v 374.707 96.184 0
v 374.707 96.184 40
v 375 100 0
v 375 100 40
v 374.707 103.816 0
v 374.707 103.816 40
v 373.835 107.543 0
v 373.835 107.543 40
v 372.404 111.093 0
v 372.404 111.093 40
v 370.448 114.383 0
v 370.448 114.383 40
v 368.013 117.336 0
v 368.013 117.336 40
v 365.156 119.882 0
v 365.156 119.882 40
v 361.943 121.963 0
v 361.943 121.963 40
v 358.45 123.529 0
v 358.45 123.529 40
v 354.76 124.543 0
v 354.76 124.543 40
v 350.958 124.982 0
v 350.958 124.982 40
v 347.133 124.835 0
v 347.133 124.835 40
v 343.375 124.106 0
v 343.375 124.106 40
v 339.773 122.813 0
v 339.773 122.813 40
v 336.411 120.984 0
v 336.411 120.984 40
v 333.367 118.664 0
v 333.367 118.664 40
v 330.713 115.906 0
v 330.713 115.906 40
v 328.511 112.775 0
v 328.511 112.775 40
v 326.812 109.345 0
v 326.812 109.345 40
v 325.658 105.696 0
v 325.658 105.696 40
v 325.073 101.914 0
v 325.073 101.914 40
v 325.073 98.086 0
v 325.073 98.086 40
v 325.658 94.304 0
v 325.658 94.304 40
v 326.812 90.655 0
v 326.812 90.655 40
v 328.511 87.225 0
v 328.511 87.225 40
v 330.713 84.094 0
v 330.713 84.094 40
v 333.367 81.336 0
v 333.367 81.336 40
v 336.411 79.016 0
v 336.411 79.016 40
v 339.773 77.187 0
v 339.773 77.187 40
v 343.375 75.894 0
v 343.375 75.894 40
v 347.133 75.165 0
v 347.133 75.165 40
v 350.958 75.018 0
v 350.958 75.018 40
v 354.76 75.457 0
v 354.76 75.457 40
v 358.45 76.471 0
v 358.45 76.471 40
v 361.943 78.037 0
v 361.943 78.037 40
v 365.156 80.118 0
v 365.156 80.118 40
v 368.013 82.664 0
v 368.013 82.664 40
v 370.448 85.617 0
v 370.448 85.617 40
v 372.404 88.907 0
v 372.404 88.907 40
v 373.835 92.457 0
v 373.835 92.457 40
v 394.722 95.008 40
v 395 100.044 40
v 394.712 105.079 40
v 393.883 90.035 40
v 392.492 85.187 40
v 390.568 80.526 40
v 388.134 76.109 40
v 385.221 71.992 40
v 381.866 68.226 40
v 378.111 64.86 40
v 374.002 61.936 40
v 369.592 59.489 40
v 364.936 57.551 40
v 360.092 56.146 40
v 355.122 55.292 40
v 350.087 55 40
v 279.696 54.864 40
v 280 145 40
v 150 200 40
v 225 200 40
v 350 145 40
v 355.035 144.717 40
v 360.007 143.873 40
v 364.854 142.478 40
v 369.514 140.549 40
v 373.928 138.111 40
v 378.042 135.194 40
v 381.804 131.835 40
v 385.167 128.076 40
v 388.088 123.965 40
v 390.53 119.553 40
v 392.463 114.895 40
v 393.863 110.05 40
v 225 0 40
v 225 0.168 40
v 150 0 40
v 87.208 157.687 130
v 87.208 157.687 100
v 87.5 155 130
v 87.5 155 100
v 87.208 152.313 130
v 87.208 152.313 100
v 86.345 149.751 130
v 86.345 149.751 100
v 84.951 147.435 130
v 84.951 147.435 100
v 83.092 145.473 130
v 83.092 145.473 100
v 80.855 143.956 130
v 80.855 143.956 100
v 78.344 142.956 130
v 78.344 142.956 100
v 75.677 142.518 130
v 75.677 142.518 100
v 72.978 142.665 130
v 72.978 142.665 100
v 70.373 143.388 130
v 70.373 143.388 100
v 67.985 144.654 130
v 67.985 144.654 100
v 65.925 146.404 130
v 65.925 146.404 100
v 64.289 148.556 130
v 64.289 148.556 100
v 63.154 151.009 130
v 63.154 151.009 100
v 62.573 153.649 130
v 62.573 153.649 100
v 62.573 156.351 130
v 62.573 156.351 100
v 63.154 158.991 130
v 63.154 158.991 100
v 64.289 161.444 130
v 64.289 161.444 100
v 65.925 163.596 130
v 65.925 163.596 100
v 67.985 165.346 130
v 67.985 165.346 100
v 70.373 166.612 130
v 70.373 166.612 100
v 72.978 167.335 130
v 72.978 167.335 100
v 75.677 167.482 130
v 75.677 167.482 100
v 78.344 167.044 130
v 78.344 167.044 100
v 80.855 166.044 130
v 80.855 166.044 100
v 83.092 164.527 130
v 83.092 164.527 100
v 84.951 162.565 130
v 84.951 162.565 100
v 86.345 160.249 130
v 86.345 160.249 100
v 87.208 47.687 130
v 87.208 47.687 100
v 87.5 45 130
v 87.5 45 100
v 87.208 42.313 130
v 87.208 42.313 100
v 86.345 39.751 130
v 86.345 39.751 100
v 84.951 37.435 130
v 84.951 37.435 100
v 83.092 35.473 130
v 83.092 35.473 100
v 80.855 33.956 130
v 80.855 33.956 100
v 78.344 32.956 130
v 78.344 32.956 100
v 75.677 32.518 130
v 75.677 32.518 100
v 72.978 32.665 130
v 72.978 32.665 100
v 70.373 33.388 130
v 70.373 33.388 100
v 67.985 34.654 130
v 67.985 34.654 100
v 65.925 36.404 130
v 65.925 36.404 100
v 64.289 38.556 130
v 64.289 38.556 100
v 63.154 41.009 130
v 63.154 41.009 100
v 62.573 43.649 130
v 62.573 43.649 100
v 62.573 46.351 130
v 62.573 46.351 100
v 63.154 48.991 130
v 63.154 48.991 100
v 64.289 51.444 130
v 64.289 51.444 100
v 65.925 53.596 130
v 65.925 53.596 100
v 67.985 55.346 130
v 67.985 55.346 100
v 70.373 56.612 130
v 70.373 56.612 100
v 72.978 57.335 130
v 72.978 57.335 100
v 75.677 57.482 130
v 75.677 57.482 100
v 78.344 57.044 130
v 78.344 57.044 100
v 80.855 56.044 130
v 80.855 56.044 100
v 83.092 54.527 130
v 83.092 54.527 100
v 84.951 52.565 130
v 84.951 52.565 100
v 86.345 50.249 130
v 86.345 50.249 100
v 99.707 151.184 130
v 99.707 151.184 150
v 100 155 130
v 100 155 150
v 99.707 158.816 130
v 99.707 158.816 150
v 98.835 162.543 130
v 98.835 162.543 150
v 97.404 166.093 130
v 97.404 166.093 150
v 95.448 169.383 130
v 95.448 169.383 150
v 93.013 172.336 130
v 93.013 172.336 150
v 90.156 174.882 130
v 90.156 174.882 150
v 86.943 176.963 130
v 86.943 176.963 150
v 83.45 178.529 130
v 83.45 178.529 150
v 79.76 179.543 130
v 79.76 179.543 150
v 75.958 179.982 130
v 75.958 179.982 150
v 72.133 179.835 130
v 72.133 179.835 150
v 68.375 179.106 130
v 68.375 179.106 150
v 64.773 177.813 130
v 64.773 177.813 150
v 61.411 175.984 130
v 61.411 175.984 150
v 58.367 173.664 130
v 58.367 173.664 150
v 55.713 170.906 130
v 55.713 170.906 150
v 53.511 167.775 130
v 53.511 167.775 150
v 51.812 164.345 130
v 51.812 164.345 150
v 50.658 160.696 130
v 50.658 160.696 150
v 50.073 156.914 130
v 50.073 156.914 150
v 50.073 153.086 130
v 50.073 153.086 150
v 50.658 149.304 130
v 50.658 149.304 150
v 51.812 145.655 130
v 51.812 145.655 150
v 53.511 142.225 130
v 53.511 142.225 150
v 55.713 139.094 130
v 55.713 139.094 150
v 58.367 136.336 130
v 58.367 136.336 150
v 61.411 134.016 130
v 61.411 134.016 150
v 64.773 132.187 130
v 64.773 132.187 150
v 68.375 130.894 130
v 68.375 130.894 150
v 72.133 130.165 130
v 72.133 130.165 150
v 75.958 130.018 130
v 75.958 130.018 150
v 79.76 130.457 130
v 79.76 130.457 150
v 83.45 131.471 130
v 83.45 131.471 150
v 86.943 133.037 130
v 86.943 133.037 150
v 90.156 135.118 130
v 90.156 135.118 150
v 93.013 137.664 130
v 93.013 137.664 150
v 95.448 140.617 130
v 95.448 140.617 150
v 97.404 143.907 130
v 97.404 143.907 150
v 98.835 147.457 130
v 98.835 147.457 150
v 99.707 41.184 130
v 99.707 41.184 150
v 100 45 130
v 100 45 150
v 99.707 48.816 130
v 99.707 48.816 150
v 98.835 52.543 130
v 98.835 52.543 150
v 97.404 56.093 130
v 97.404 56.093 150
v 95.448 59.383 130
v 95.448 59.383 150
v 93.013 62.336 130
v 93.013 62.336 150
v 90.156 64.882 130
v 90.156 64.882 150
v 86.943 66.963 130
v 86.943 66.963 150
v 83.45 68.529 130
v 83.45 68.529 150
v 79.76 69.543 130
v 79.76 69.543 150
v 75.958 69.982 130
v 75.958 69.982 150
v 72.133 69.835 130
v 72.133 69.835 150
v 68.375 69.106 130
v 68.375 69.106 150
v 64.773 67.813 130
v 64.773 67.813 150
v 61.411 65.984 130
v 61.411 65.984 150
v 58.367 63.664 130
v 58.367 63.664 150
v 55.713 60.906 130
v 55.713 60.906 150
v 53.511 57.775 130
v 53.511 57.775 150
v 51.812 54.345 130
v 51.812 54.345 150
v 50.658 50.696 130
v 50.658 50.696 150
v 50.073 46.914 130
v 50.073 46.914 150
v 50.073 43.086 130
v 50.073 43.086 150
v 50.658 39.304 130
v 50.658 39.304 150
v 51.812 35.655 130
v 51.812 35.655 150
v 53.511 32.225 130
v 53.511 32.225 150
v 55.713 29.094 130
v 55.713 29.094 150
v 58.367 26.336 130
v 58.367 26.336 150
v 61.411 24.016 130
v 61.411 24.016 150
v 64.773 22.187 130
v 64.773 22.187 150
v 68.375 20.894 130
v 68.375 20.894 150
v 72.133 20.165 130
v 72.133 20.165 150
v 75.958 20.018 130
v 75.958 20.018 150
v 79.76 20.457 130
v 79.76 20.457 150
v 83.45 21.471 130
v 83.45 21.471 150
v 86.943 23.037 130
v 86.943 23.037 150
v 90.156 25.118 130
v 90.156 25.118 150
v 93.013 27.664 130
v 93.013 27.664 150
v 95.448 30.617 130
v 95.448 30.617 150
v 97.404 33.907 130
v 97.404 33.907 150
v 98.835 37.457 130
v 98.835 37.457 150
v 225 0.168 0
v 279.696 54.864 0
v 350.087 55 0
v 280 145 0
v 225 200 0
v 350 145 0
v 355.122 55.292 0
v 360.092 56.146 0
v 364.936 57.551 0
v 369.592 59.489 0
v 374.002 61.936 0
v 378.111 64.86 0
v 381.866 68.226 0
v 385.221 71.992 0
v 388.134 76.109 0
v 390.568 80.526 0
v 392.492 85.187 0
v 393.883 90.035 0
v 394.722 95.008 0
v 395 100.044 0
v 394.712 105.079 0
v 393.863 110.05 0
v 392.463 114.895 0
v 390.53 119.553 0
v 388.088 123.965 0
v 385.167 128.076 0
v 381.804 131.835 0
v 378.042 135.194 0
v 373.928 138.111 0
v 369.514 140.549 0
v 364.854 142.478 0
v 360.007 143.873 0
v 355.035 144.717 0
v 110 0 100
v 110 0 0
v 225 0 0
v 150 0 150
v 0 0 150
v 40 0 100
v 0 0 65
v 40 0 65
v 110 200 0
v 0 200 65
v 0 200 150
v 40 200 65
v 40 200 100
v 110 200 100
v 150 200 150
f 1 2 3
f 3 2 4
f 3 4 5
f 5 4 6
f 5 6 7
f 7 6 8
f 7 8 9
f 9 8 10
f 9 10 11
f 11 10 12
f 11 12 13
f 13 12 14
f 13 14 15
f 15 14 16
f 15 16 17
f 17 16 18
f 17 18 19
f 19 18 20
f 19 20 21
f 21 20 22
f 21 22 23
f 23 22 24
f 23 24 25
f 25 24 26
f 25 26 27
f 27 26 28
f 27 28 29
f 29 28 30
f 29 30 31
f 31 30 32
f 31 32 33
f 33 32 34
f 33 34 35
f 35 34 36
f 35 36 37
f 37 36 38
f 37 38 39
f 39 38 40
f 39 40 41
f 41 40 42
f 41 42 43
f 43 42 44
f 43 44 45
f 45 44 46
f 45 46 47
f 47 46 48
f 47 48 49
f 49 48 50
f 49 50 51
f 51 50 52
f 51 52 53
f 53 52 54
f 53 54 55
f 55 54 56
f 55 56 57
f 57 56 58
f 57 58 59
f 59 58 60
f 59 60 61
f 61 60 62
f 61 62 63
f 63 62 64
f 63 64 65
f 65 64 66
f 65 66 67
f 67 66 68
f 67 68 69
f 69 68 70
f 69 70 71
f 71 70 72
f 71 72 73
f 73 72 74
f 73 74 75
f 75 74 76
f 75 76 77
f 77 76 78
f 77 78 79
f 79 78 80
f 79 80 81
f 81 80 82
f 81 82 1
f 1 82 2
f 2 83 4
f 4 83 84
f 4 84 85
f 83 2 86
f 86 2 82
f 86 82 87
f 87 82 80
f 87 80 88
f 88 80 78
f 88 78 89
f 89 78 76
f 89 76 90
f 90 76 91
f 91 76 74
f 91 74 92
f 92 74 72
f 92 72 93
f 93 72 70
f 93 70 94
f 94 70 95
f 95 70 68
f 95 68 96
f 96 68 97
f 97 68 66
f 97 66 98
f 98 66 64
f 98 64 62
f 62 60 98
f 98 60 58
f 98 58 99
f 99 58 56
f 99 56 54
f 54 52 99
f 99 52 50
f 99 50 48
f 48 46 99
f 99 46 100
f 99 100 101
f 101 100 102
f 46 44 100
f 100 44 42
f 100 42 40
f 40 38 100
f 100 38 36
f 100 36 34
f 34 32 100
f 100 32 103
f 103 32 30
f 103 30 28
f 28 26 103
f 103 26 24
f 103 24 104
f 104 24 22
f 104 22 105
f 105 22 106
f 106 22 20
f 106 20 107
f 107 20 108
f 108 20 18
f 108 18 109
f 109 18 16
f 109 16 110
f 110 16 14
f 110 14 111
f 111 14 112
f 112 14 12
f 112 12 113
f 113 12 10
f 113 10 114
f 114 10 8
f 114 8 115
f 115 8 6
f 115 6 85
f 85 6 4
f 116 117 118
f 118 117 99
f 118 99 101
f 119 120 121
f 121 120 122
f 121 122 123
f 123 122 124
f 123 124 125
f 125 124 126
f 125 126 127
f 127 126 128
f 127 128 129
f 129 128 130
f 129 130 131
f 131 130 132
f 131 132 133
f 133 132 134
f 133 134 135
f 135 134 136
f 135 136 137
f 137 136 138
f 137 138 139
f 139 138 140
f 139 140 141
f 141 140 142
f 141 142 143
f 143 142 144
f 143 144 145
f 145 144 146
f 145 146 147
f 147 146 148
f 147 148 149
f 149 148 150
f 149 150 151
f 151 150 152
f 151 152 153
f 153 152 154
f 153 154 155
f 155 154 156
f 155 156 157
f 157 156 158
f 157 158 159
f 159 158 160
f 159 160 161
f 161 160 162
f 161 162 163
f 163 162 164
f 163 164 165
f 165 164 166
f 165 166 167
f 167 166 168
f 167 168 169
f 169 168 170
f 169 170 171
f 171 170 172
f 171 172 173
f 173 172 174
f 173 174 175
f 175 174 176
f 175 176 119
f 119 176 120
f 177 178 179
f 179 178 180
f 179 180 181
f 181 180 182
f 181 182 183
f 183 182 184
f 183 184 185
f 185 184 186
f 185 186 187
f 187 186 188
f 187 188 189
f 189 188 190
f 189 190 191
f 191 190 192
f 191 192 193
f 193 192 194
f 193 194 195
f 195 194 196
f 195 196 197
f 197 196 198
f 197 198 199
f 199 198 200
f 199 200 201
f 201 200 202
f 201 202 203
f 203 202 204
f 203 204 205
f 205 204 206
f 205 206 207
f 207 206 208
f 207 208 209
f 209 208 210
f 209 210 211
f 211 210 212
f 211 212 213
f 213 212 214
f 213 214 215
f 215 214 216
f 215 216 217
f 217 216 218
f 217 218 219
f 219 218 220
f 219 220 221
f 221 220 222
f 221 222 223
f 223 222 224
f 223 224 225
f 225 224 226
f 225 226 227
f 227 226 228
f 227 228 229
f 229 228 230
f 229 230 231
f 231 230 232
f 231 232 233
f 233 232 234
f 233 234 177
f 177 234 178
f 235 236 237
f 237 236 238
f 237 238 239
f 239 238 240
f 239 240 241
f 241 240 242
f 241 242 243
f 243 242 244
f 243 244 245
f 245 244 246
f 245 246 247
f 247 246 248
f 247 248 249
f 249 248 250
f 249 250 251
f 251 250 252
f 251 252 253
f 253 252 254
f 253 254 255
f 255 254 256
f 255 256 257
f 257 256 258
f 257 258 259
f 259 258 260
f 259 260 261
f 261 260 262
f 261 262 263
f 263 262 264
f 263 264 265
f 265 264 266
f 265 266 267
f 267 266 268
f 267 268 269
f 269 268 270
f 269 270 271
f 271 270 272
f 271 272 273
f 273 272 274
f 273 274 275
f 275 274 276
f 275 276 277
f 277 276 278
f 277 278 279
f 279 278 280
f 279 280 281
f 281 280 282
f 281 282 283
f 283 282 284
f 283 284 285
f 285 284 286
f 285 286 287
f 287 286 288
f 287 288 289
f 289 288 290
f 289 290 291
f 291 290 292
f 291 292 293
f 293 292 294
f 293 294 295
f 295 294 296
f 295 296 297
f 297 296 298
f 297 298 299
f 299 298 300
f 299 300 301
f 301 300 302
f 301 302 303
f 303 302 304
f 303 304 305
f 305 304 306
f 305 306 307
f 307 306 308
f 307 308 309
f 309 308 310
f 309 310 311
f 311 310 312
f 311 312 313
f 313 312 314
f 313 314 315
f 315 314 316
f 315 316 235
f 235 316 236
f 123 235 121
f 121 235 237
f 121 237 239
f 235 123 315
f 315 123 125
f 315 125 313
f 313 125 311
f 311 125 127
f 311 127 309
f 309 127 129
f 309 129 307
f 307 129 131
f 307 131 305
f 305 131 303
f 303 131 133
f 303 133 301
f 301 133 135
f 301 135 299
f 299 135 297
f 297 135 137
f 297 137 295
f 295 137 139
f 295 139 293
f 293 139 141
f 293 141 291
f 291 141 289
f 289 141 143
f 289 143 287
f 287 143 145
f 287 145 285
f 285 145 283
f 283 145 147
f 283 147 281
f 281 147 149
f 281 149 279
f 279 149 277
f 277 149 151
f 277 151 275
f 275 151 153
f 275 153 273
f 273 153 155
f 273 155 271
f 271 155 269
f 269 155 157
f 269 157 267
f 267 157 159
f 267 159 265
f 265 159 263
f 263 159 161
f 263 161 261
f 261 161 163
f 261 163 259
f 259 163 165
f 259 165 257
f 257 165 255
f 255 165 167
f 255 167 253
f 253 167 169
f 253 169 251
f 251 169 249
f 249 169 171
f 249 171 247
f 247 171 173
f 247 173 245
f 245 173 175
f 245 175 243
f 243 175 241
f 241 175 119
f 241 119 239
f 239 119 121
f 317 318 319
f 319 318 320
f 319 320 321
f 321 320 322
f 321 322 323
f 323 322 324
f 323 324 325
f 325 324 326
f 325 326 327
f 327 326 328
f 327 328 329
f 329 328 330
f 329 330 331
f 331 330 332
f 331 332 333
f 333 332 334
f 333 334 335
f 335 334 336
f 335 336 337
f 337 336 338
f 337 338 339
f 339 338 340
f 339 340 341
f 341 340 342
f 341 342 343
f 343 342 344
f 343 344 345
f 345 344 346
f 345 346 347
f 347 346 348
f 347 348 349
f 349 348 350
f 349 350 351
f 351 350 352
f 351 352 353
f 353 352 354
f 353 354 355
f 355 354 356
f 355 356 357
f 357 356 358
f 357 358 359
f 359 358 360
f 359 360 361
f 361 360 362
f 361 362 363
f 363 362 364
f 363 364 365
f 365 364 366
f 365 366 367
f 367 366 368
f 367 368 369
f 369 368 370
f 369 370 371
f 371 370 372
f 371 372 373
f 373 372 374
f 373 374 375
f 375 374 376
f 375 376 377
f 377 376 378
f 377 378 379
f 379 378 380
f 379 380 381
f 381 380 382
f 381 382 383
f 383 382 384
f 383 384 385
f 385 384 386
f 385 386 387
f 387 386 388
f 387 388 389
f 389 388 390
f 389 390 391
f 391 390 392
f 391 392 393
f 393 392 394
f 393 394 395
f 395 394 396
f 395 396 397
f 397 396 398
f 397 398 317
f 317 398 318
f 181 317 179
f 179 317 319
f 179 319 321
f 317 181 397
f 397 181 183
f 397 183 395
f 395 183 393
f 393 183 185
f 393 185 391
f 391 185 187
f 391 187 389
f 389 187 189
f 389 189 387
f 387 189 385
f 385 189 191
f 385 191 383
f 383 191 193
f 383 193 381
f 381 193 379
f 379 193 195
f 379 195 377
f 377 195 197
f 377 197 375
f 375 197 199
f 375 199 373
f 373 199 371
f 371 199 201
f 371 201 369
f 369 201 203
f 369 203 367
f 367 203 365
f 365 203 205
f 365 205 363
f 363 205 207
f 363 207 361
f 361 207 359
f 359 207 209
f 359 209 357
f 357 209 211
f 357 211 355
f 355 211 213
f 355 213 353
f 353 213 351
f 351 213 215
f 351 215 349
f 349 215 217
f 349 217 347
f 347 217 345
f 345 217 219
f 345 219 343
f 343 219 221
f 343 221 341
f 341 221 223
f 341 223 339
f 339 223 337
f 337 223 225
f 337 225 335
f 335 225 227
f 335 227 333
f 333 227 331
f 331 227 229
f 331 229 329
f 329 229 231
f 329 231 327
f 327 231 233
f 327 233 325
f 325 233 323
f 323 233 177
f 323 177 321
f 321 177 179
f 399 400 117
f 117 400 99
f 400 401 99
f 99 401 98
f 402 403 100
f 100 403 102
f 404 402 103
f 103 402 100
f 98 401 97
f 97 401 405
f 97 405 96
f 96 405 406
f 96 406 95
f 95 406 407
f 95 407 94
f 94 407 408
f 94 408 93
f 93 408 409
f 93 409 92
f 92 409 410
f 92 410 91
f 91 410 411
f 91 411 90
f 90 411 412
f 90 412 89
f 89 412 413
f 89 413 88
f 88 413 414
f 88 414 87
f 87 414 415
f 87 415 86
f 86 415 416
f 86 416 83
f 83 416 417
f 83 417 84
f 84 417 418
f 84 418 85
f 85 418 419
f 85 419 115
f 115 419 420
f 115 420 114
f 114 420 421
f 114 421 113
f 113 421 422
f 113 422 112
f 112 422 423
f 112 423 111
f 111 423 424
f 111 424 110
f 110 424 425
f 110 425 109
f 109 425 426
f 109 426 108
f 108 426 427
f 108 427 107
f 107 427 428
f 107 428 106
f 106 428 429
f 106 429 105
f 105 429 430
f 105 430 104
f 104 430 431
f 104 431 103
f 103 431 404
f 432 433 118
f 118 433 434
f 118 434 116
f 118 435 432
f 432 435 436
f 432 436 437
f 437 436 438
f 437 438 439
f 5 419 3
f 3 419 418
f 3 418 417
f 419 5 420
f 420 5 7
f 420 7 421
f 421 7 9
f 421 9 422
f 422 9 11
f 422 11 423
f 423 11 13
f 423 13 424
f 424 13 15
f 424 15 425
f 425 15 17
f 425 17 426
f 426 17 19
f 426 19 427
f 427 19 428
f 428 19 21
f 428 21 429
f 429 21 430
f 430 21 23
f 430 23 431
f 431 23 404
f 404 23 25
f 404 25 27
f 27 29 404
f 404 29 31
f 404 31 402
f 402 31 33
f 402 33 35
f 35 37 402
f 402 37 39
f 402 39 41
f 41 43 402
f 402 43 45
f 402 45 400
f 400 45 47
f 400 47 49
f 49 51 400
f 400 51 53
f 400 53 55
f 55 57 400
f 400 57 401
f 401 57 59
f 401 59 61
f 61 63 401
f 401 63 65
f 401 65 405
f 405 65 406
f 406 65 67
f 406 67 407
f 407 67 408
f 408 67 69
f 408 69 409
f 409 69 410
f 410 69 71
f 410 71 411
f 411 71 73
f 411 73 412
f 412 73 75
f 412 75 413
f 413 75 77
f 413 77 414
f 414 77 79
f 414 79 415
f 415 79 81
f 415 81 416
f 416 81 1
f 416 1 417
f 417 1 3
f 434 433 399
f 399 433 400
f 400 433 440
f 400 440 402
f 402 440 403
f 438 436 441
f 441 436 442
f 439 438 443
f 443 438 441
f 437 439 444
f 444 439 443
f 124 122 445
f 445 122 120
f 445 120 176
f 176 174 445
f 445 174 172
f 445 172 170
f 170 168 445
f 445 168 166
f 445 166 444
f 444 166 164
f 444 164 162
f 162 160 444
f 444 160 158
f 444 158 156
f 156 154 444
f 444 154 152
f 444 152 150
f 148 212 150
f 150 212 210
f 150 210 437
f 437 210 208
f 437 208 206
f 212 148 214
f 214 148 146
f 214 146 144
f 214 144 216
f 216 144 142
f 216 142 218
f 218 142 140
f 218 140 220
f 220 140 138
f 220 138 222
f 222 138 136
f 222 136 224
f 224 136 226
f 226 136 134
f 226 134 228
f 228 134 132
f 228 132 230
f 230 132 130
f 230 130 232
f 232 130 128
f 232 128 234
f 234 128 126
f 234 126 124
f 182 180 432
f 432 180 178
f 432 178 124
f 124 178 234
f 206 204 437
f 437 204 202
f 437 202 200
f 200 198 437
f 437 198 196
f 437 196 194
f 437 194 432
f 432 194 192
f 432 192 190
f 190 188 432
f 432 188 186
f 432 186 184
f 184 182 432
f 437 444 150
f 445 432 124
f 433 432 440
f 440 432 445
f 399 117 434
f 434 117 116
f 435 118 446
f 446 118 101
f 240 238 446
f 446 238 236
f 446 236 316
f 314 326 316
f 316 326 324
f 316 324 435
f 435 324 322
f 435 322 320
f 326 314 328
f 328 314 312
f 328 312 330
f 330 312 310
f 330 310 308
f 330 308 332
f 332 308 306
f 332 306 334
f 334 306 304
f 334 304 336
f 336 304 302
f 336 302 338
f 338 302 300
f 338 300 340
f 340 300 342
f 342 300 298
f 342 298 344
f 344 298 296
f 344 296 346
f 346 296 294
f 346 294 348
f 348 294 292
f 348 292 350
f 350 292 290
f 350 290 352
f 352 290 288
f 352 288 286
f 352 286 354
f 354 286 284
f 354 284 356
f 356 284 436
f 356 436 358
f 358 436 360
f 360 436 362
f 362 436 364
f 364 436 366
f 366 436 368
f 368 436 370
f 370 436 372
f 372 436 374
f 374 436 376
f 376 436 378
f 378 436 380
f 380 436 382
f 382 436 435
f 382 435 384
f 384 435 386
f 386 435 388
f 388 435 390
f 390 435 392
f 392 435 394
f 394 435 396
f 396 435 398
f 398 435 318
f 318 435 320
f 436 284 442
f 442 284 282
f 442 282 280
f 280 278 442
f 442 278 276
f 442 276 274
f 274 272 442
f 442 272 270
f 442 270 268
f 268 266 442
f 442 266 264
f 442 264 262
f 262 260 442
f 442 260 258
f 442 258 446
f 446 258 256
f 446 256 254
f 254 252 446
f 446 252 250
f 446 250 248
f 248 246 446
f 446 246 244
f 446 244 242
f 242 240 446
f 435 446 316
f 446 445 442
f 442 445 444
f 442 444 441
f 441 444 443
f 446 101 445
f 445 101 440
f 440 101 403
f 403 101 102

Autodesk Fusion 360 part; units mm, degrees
sketch "Sketch1" plane through (0, 0, 0) normal (0, 1, 0) x (1, 0, 0)
  line L0 (0, -150) -> (0, -65)
  line L1 (0, -65) -> (40, -65)
  line L2 (40, -65) -> (40, -100)
  line L3 (0, 0) -> (225, 0)
  line L4 (225, -40) -> (225, 0)
  line L5 (40, -100) -> (110, -100)
  line L6 (0, -150) -> (150, -150)
  line L7 (110, -100) -> (110, 0)
  line L8 (150, -150) -> (150, -40)
  line L9 (150, -40) -> (225, -40)
  dimension "d7" = 150
  dimension "d9" = 85
  dimension "d11" = 35
  dimension "d14" = 225
  dimension "d15" = 70
  dimension "d16" = 150
  dimension "d17" = 110
extrude "Extrude1" add sketch "Sketch1" along normal blind 200
sketch "Sketch2" plane through (0, 0, 0) normal (0, 0, 1) x (1, 0, 0)
  line L0 (224.8321, 0) -> (425, 0) construction
  line L1 (225, 200) -> (270, 200) construction
  line L2 (224.8321, 0) -> (269.8321, 0) construction
  line L3 (350, 145) -> (280, 145)
  line L4 (350.0871, 55.0001) -> (279.6959, 54.8638)
  line L5 (225, 200) -> (280, 145)
  line L6 (225, 200) -> (302.7817, 200) construction
  line L7 (224.8321, 0) -> (256.6519, 31.8198)
  line L8 (256.6519, 31.8198) -> (279.6959, 54.8638)
  arc A0 (350.0871, 55.0001) -> (350, 145) centre (350, 100) ccw
  line L9 (225, 200) -> (224.8321, 0)
  dimension "d24" = 90
  dimension "d29" = 45
  dimension "d30" = 45
extrude "Extrude2" add sketch "Sketch2" along normal blind 40
sketch "Sketch3" plane through (0, 0, 40) normal (0, 0, 1) x (-1, 0, 0)
  line L0 (-150, 0) -> (-225, 0)
  line L1 (-225, 0) -> (-225, -0.1679)
  line L2 (-225, -0.1679) -> (-279.6959, -54.8638)
  line L3 (-279.6959, -54.8638) -> (-350.0871, -55.0001)
  arc A0 (-350.0871, -55.0001) -> (-350, -145) centre (-350, -100) ccw
  line L4 (-350, -145) -> (-280, -145)
  line L5 (-280, -145) -> (-225, -200)
  line L6 (-225, -200) -> (-150, -200)
  line L7 (-150, -200) -> (-150, 0)
  circle A1 centre (-350, -100) radius 25
extrude "Extrude3" cut sketch "Sketch3" against normal blind 40 contours A1
sketch "Sketch4" plane through (0, 0, 150) normal (0, 0, 1) x (-1, 0, 0)
  line L0 (0, 0) -> (-150, 0)
  line L1 (-150, 0) -> (-150, -200)
  line L2 (-150, -200) -> (0, -200)
  line L3 (0, -200) -> (0, 0)
  circle A0 centre (-75, -155) radius 25
  circle A1 centre (-75, -45) radius 25
extrude "Extrude4" cut sketch "Sketch4" against normal blind 20 contours A0 | A1
sketch "Sketch5" plane through (0, 0, 150) normal (0, 0, 1) x (-1, 0, 0)
  circle A0 centre (-75, -155) radius 25
  circle A1 centre (-75, -45) radius 25
  line L0 (0, 0) -> (-150, 0)
  line L1 (-150, 0) -> (-150, -200)
  line L2 (-150, -200) -> (0, -200)
  line L3 (0, -200) -> (0, 0)
  circle A2 centre (-75, -155) radius 12.5
  circle A3 centre (-75, -45) radius 12.5
  dimension "d43" = 25
  dimension "d44" = 25
extrude "Extrude5" cut sketch "Sketch5" against normal blind 80 contours A2 | A3
extrude "Extrude6" add sketch "Sketch2" along normal blind 40
sketch "Sketch6" plane through (0, 0, 40) normal (0, 0, 1) x (-1, 0, 0)
  line L0 (-150, 0) -> (-225, 0)
  line L1 (-225, 0) -> (-225, -0.1679)
  line L2 (-225, -0.1679) -> (-279.6959, -54.8638)
  line L3 (-279.6959, -54.8638) -> (-350.0871, -55.0001)
  arc A0 (-350.0871, -55.0001) -> (-350, -145) centre (-350, -100) ccw
  line L4 (-350, -145) -> (-280, -145)
  line L5 (-280, -145) -> (-225, -200)
  line L6 (-225, -200) -> (-150, -200)
  line L7 (-150, -200) -> (-150, 0)
  circle A1 centre (-350, -100) radius 25
  dimension "d49" = 50
extrude "Extrude7" cut sketch "Sketch6" against normal blind 60 contours A1
